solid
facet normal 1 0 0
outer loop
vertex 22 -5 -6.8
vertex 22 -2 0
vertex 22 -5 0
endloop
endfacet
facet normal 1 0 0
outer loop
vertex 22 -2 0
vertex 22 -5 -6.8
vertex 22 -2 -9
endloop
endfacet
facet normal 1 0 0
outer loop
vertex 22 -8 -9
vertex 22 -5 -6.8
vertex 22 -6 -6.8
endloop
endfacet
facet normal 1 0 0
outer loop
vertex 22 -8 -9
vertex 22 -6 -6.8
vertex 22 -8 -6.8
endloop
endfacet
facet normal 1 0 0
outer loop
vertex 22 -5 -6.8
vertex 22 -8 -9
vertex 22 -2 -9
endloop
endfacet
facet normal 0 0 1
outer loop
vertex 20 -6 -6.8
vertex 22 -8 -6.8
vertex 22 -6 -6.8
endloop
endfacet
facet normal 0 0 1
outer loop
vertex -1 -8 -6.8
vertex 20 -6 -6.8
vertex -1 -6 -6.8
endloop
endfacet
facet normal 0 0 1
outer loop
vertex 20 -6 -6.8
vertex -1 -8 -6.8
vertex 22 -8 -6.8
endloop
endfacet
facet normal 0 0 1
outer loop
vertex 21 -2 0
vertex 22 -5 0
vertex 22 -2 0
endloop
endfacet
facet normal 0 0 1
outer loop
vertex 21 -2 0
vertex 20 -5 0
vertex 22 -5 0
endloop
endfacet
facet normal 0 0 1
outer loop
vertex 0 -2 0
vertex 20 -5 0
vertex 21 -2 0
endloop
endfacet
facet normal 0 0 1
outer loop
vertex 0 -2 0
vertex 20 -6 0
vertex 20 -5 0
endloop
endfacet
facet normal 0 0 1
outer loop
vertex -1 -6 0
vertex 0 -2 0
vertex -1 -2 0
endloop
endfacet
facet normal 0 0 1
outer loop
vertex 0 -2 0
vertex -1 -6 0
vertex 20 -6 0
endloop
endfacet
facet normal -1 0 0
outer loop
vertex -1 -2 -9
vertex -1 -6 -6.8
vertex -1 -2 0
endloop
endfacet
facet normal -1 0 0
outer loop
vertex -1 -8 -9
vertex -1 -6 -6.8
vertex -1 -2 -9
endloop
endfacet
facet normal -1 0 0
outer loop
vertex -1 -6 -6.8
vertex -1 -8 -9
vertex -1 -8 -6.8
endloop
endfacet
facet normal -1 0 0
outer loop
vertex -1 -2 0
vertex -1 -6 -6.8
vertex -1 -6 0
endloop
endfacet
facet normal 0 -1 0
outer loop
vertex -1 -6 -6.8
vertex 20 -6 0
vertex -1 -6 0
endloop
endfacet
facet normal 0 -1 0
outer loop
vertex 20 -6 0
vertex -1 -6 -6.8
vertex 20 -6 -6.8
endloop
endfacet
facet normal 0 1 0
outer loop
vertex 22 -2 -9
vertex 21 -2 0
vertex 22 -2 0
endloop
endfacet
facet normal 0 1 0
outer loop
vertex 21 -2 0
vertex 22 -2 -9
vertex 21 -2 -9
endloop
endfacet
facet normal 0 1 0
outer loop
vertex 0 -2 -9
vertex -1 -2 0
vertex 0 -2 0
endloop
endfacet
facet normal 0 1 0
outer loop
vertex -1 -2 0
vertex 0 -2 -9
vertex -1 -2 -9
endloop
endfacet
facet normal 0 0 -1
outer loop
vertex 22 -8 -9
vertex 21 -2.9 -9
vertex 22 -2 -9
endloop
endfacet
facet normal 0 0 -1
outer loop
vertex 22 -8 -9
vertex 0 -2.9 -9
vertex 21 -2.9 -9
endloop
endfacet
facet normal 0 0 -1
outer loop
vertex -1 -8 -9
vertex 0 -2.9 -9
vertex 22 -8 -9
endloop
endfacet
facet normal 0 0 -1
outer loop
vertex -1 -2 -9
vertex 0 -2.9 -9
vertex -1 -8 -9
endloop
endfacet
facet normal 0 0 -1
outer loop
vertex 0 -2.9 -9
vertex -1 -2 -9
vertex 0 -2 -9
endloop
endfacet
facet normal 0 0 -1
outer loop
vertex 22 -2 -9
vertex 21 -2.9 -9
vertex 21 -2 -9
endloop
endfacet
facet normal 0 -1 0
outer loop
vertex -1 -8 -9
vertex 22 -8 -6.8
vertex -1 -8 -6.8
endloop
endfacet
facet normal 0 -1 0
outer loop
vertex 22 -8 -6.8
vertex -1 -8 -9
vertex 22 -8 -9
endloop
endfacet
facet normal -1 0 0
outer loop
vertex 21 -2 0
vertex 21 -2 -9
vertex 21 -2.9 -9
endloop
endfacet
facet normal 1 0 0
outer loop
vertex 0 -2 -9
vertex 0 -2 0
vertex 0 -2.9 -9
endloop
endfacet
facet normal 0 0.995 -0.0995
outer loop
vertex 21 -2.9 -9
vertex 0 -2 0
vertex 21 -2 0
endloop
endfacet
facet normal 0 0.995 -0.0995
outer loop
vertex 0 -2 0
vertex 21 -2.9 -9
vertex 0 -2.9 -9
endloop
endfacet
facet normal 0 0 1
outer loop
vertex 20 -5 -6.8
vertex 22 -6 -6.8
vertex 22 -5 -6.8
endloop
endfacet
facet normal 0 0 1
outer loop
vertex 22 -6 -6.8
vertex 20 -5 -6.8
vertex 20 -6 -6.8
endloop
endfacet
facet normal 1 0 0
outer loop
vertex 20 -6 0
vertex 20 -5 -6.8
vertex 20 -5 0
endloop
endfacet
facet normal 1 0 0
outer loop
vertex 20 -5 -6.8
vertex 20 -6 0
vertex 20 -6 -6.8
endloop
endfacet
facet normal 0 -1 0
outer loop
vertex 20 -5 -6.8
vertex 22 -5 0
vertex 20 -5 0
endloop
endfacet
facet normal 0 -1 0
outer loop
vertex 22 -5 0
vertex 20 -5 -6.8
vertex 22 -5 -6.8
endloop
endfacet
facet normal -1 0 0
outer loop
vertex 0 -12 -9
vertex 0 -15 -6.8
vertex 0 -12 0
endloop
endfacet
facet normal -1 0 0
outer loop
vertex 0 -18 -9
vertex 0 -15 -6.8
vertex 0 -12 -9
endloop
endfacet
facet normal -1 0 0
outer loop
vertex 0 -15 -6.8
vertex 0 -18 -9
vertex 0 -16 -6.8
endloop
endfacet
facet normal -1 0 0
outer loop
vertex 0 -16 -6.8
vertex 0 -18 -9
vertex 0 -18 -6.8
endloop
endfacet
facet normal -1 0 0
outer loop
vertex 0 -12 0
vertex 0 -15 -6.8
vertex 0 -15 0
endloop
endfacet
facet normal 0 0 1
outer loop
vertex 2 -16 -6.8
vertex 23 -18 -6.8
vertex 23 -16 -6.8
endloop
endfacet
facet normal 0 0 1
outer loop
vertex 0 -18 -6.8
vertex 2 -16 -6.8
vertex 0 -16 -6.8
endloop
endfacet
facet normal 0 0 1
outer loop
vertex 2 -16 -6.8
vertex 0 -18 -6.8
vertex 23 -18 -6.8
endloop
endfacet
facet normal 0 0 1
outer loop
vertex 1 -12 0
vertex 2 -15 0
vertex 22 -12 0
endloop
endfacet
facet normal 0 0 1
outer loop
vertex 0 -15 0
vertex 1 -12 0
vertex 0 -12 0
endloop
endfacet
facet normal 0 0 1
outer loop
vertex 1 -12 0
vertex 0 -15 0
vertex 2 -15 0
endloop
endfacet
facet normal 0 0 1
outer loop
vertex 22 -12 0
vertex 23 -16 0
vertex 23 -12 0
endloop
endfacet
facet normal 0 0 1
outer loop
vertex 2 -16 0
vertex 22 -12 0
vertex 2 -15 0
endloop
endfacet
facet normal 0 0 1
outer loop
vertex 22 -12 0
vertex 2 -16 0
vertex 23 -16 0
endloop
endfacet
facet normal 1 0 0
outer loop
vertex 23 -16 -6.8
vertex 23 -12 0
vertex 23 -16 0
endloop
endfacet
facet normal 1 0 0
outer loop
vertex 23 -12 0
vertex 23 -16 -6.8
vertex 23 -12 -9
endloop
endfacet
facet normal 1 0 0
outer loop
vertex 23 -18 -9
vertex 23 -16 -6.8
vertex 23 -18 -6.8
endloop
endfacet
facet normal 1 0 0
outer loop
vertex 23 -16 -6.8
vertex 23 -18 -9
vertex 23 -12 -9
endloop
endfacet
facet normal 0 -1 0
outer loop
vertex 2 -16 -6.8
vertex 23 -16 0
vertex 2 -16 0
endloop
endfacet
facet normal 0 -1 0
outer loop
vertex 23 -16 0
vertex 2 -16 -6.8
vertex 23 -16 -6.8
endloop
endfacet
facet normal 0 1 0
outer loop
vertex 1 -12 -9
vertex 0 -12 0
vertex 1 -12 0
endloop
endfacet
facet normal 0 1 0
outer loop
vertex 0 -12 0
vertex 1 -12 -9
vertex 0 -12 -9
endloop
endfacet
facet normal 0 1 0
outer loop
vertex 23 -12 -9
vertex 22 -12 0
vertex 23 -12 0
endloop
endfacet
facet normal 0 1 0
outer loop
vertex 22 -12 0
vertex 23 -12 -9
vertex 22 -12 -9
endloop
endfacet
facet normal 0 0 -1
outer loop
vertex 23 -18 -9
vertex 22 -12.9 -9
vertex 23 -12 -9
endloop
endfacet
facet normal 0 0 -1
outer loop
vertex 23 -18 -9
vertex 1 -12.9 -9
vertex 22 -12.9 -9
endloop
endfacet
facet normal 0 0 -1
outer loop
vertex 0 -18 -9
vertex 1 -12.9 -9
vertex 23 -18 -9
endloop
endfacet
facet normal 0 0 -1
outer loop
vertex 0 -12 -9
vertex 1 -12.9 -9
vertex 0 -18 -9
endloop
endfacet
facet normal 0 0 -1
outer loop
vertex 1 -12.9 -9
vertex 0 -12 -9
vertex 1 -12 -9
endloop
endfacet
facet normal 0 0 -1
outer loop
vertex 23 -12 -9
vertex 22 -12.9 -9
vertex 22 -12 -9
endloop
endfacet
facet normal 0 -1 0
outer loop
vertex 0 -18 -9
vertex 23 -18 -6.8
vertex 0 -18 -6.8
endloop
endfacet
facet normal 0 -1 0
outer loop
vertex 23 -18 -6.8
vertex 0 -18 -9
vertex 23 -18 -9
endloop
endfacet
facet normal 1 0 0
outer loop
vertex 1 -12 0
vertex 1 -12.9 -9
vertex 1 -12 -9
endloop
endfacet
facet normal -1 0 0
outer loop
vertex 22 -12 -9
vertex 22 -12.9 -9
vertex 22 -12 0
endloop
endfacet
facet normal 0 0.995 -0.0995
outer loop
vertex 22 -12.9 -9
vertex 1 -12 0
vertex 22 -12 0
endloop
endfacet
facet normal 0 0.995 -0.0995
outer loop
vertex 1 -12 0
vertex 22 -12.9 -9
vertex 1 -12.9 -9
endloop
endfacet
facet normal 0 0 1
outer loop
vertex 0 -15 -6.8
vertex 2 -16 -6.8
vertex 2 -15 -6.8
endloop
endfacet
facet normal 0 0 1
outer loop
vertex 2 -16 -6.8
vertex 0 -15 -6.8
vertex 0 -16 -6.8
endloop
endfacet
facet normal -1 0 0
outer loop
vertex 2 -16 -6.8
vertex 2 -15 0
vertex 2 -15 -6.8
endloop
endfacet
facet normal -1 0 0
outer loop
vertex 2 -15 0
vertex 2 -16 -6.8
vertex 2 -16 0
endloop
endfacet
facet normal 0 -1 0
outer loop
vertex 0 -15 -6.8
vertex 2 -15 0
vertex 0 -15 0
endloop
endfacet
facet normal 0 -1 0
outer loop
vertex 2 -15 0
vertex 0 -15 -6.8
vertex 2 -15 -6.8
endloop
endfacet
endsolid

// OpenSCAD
$fn = 100;
$fa = 5;
$fs = 1;

fa_small = 6;
fs_small = 0.2;


module clipslock_base(l, h2) {
    translate([l,0,0]) rotate([0,-90,0])
	    linear_extrude(height=l) polygon(points = [
		[0,0],
		[0, 2],
		[h2, 3],
		[h2, 0],
		]);
}

module clipslock(el = 4, eh= 6, l = 20, h1 = 5, h2 = 10)
{
	difference() {
	    union() {
		translate([-1, 2, 0]) cube([l + 3, el - 2, h1]);
	    	translate([-1, 2, h1]) cube([l + 3, eh - 2, h2 - h1 - 1]);
	    }
	    clipslock_base(l = l + 1, h2 = h2);
	    translate([l, el - 1, 0]) cube([2, 1, h1]);
	}
}

rotate([180,0,0]) clipslock(el = 6, eh = 8, l = 20, h1 = 6.8, h2 = 10);
translate([22, -10, 0]) mirror([1, 0, 0]) rotate([180,0,0]) clipslock(el = 6, eh = 8, l = 20, h1 = 6.8, h2 = 10);
